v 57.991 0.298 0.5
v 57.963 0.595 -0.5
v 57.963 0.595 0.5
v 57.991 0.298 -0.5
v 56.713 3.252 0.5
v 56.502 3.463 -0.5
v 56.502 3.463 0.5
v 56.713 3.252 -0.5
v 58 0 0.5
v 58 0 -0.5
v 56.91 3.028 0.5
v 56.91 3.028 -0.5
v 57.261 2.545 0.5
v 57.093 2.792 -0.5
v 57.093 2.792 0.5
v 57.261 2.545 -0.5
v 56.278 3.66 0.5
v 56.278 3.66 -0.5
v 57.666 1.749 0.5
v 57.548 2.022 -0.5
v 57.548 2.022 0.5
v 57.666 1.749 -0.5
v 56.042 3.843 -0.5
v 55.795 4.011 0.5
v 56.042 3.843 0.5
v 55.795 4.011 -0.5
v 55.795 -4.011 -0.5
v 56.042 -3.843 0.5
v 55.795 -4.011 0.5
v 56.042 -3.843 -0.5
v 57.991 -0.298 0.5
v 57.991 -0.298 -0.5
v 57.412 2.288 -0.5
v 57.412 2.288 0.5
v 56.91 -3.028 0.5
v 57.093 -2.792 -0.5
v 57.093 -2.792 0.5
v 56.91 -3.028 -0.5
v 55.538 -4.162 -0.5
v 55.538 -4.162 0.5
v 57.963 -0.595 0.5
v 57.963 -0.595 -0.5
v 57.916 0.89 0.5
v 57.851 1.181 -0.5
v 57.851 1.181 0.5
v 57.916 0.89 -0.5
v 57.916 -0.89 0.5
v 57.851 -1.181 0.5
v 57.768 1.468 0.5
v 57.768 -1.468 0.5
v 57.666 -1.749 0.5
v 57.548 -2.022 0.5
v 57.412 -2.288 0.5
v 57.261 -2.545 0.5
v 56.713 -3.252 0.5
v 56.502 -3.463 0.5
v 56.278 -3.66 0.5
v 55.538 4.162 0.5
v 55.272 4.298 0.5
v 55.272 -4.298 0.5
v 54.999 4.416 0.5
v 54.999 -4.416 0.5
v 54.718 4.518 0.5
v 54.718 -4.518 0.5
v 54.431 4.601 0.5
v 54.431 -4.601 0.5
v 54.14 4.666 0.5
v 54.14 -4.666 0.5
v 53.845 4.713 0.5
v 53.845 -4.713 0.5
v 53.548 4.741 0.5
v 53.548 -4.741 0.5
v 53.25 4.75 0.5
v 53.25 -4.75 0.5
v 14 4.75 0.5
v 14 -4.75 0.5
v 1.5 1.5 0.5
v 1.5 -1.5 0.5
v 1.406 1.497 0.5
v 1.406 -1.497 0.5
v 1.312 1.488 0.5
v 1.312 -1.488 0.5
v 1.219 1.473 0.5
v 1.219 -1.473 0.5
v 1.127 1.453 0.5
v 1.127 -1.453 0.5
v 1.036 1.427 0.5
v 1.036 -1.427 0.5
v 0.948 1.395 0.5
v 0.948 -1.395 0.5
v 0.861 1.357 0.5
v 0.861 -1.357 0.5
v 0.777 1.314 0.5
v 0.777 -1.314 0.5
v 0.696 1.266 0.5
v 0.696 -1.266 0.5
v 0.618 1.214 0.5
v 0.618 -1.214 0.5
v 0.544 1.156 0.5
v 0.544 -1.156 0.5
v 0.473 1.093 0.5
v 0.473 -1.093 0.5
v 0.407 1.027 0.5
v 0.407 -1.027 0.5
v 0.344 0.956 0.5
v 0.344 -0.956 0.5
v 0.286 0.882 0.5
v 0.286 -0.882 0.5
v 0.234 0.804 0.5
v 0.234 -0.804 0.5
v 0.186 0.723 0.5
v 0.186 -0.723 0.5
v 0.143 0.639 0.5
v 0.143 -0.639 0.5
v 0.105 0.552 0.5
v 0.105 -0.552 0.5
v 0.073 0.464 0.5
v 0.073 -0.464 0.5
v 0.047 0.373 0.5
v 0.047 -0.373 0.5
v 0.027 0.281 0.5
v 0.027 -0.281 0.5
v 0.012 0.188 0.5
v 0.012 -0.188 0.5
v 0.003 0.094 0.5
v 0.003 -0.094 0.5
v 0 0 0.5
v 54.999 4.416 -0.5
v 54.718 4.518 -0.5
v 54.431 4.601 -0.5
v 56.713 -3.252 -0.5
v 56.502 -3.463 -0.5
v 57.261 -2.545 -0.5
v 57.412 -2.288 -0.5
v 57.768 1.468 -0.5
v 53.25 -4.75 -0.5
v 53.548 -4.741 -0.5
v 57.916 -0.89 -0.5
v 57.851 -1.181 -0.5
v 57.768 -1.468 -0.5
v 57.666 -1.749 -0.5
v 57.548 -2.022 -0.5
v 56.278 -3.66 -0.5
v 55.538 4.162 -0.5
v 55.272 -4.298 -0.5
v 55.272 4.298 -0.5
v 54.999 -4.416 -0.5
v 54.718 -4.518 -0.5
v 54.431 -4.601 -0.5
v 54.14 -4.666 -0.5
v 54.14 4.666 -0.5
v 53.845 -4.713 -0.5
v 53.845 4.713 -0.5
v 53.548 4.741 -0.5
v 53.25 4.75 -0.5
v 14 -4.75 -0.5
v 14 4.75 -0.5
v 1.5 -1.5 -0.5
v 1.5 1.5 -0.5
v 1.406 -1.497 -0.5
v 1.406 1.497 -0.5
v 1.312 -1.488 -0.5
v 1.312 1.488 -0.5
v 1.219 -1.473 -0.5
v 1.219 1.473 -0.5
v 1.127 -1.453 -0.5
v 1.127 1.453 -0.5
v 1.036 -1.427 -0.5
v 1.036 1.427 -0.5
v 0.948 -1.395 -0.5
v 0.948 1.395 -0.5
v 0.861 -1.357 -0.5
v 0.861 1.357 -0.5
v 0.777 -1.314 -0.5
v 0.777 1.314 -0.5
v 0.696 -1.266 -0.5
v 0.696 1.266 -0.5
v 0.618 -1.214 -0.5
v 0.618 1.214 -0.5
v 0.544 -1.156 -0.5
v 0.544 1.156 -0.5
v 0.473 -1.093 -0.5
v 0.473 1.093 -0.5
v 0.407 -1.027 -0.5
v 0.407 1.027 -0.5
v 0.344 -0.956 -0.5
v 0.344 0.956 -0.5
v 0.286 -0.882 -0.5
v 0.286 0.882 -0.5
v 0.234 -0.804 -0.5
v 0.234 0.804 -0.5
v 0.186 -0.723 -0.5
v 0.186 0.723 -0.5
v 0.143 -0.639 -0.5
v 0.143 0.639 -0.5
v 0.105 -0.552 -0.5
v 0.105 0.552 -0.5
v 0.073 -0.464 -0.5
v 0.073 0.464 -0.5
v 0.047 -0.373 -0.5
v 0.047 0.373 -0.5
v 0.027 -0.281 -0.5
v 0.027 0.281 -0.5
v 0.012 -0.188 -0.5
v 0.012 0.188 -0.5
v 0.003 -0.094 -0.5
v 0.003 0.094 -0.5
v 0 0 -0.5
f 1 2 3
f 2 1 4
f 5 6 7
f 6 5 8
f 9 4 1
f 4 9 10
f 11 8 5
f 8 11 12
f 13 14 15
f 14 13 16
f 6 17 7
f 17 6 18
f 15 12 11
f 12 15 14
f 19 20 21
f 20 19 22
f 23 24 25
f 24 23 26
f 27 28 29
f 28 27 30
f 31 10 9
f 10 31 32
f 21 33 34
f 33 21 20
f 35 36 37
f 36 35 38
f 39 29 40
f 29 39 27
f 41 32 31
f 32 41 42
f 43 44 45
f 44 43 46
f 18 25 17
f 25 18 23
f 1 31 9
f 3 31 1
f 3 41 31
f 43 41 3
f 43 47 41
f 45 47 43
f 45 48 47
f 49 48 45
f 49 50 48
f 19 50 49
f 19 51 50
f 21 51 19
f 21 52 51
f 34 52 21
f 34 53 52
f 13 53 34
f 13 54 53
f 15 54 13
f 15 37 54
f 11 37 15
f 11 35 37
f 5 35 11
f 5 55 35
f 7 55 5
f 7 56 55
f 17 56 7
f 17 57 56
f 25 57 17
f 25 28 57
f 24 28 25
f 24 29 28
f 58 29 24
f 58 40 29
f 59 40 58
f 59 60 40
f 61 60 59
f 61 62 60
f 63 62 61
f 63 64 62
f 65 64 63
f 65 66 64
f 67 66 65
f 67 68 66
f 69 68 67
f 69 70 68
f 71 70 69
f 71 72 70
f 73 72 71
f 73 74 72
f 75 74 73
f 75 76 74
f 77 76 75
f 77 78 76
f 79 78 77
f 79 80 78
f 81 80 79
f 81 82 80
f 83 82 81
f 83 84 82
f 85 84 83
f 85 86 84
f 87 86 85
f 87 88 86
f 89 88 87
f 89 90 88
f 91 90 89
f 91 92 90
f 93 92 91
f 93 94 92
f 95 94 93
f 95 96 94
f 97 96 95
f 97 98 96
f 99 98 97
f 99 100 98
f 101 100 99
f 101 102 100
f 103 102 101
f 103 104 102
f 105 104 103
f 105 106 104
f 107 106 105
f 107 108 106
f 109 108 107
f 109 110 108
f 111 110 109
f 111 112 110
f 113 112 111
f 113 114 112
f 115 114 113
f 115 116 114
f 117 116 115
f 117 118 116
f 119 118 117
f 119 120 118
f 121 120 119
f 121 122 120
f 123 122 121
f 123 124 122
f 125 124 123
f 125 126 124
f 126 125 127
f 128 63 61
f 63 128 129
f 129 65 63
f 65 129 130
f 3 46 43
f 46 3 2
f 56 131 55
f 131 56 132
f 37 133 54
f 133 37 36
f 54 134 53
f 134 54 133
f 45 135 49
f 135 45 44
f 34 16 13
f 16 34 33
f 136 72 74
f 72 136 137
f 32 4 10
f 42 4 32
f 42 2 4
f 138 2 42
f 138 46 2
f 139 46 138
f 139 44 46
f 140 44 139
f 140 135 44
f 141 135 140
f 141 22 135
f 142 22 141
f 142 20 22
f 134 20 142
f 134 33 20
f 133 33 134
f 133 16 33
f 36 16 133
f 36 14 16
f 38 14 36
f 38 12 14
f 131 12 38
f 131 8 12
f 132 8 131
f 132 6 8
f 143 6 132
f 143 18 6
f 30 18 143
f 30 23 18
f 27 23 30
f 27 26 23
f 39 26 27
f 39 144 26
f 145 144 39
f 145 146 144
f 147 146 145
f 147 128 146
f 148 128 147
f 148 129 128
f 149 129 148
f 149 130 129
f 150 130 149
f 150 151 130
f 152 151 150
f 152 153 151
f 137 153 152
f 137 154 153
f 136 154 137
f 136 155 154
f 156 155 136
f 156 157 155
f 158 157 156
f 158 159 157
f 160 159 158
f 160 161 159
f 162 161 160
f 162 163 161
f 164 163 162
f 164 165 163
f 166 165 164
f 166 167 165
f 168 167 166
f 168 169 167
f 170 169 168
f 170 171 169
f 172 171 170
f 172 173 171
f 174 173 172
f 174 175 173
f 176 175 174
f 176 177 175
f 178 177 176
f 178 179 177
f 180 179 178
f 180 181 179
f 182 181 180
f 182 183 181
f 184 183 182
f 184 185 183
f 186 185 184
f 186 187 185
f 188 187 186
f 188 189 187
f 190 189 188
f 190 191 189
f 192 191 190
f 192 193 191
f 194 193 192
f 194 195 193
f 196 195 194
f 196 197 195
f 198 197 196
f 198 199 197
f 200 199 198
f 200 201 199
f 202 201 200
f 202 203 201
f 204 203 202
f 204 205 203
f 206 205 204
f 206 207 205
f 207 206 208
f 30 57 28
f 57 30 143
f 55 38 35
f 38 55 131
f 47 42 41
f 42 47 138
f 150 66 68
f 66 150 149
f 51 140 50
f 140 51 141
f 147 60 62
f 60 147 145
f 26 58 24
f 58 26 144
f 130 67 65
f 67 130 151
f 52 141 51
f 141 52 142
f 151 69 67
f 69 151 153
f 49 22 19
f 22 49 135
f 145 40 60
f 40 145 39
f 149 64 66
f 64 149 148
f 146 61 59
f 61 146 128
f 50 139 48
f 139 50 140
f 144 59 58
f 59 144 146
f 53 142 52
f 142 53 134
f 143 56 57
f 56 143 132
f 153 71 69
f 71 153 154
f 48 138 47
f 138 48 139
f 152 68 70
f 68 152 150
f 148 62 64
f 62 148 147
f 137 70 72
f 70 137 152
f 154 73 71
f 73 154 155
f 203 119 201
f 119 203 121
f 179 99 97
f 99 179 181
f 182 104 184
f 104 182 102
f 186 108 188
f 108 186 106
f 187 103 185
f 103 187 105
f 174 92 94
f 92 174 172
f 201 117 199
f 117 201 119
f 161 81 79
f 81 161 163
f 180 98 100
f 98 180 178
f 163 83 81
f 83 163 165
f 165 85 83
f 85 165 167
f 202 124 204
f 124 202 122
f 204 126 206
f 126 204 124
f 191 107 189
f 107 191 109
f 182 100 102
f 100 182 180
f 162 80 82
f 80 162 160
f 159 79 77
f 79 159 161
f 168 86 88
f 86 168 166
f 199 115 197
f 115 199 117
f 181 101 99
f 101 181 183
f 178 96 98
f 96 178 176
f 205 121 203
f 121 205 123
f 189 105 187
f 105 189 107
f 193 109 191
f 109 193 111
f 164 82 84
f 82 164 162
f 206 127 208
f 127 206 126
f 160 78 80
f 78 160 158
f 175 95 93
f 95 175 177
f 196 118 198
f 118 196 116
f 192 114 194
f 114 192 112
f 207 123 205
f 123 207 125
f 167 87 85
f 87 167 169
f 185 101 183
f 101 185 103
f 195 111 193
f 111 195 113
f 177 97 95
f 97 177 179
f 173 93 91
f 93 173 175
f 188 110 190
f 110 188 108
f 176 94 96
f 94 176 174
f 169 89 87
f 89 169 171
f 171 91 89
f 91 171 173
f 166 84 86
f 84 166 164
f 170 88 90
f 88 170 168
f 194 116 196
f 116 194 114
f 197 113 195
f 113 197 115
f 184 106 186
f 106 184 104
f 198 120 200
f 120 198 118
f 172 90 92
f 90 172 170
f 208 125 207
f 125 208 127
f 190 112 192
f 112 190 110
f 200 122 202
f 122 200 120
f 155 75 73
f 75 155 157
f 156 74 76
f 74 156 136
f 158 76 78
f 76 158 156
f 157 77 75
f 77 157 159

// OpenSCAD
// Collar Stay

w = 9.5;
h = 1.0;
ll = 58.0;
saw_od = 64.5;
l2 = 44.0;
sd = 3.0;

$fn = 100;
union() {
    translate([ll - w/2.0, 0, 0]) {
        cylinder(h = h, r = w / 2.0, center = true);
    }
    translate([sd / 2.0, 0, 0]) {
        cylinder(h = h, r = sd / 2.0, center = true);
    }
    translate([ll - l2, -w / 2.0, -h / 2.0]) {
        cube([l2 - w / 2.0, w, h], center = false);
    }
    translate([0, 0, -h / 2.0]) {
        linear_extrude(h) {
            polygon([
                [sd / 2.0, sd / 2.0],
                [ll - l2, w / 2.0],
                [ll - l2, -w / 2.0],
                [sd / 2.0, -sd / 2.0]
            ]);
        }
    }
}
